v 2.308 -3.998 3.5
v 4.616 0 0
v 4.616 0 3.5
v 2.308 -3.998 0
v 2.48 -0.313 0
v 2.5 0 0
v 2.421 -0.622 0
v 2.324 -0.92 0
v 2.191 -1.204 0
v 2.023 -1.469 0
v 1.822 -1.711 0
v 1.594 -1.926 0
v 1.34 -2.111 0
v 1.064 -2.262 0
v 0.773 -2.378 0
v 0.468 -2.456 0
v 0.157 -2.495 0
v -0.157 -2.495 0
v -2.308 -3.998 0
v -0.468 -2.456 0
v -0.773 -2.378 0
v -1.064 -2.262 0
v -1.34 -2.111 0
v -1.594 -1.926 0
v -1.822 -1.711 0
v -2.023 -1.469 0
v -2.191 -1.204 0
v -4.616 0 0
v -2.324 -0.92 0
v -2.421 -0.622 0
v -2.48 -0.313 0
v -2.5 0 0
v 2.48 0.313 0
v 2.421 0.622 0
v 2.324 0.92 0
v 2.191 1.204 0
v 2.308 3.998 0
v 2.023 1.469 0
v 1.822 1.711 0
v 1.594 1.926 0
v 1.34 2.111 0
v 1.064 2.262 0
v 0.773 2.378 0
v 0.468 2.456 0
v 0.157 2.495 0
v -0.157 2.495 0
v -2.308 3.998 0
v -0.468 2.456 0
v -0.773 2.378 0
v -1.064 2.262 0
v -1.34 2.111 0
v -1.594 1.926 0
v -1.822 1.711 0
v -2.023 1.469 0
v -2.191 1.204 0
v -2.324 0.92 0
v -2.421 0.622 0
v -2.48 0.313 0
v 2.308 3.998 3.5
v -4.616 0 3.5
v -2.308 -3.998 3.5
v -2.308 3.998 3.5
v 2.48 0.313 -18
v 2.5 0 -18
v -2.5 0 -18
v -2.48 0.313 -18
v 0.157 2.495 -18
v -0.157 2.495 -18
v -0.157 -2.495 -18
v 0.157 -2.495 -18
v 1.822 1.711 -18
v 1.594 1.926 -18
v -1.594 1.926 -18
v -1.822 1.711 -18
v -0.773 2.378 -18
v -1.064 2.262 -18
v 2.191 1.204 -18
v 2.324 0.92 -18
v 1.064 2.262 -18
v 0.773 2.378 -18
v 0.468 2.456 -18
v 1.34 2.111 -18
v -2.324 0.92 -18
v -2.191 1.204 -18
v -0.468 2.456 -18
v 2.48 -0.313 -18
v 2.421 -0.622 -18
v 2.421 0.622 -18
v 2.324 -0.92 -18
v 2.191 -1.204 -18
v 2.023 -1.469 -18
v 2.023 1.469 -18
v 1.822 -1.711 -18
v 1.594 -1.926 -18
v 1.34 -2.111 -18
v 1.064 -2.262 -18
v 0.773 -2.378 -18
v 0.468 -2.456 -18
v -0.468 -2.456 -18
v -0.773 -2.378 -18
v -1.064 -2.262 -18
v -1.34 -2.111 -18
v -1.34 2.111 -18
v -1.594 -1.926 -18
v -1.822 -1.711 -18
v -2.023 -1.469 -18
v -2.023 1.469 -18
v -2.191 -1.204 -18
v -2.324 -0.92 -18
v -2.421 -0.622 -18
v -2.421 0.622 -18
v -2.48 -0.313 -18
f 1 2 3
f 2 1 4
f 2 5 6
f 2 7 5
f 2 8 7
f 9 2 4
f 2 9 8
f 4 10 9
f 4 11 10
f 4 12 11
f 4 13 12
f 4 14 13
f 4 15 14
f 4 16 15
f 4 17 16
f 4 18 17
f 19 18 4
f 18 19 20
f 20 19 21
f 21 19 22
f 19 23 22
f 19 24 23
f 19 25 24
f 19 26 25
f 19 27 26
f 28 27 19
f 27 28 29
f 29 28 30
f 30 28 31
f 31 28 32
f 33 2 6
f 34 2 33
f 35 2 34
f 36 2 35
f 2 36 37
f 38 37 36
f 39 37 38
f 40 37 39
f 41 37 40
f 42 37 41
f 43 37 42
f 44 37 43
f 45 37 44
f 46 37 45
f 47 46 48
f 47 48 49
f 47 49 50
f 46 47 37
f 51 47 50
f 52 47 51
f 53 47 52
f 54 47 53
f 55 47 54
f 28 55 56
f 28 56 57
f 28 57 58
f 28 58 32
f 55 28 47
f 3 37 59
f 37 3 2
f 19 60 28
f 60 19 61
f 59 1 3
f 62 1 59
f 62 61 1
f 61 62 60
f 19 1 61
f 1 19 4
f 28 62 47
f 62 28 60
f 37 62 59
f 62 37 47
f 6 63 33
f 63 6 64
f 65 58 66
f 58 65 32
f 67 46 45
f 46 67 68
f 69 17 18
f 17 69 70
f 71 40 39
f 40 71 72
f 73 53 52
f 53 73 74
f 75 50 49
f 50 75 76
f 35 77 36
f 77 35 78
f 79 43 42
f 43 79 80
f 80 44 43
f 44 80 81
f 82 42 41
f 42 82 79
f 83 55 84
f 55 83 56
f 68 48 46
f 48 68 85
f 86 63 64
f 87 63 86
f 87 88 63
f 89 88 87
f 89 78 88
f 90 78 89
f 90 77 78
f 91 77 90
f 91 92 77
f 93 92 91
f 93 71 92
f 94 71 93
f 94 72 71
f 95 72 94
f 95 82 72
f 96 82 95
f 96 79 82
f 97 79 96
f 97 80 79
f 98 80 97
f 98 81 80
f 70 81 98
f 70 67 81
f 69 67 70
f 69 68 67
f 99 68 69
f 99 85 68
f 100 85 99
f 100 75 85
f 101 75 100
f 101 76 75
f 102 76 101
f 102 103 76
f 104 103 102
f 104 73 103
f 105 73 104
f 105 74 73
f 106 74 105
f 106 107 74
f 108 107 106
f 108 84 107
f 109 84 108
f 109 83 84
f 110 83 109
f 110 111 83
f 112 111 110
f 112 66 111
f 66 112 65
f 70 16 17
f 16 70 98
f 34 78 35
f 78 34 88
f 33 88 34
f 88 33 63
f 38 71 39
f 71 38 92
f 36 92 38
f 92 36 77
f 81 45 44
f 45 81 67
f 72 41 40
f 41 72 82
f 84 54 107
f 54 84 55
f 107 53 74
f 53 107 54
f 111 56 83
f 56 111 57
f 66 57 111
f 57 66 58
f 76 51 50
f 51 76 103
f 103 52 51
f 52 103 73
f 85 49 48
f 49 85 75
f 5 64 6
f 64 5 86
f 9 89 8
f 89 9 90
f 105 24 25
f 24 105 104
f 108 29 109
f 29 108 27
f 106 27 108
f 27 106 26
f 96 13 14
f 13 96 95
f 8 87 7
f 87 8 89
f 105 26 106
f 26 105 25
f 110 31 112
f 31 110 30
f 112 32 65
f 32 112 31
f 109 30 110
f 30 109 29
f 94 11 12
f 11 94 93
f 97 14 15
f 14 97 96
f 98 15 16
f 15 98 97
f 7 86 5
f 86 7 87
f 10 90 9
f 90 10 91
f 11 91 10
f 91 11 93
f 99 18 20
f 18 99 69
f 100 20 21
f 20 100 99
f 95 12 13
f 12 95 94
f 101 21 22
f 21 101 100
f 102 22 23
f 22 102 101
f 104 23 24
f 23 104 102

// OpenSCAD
$fn = 50;


difference() {
	union() {
		translate(v = [0, 0, 0]) {
			rotate(a = [0, 0, 0]) {
				translate(v = [0, 0, 0]) {
					rotate(a = [0, 0, 0]) {
						linear_extrude(height = 3.5000000000) {
							polygon(points = [[4.6160000000, 0.0000000000], [2.3080000000, 3.9975732639], [-2.3080000000, 3.9975732639], [-4.6160000000, 0.0000000000], [-2.3080000000, -3.9975732639], [2.3080000000, -3.9975732639]]);
						}
					}
				}
			}
		}
		translate(v = [0, 0, -18]) {
			rotate(a = [0, 0, 0]) {
				cylinder(h = 18, r = 2.5000000000);
			}
		}
	}
	union();
}
